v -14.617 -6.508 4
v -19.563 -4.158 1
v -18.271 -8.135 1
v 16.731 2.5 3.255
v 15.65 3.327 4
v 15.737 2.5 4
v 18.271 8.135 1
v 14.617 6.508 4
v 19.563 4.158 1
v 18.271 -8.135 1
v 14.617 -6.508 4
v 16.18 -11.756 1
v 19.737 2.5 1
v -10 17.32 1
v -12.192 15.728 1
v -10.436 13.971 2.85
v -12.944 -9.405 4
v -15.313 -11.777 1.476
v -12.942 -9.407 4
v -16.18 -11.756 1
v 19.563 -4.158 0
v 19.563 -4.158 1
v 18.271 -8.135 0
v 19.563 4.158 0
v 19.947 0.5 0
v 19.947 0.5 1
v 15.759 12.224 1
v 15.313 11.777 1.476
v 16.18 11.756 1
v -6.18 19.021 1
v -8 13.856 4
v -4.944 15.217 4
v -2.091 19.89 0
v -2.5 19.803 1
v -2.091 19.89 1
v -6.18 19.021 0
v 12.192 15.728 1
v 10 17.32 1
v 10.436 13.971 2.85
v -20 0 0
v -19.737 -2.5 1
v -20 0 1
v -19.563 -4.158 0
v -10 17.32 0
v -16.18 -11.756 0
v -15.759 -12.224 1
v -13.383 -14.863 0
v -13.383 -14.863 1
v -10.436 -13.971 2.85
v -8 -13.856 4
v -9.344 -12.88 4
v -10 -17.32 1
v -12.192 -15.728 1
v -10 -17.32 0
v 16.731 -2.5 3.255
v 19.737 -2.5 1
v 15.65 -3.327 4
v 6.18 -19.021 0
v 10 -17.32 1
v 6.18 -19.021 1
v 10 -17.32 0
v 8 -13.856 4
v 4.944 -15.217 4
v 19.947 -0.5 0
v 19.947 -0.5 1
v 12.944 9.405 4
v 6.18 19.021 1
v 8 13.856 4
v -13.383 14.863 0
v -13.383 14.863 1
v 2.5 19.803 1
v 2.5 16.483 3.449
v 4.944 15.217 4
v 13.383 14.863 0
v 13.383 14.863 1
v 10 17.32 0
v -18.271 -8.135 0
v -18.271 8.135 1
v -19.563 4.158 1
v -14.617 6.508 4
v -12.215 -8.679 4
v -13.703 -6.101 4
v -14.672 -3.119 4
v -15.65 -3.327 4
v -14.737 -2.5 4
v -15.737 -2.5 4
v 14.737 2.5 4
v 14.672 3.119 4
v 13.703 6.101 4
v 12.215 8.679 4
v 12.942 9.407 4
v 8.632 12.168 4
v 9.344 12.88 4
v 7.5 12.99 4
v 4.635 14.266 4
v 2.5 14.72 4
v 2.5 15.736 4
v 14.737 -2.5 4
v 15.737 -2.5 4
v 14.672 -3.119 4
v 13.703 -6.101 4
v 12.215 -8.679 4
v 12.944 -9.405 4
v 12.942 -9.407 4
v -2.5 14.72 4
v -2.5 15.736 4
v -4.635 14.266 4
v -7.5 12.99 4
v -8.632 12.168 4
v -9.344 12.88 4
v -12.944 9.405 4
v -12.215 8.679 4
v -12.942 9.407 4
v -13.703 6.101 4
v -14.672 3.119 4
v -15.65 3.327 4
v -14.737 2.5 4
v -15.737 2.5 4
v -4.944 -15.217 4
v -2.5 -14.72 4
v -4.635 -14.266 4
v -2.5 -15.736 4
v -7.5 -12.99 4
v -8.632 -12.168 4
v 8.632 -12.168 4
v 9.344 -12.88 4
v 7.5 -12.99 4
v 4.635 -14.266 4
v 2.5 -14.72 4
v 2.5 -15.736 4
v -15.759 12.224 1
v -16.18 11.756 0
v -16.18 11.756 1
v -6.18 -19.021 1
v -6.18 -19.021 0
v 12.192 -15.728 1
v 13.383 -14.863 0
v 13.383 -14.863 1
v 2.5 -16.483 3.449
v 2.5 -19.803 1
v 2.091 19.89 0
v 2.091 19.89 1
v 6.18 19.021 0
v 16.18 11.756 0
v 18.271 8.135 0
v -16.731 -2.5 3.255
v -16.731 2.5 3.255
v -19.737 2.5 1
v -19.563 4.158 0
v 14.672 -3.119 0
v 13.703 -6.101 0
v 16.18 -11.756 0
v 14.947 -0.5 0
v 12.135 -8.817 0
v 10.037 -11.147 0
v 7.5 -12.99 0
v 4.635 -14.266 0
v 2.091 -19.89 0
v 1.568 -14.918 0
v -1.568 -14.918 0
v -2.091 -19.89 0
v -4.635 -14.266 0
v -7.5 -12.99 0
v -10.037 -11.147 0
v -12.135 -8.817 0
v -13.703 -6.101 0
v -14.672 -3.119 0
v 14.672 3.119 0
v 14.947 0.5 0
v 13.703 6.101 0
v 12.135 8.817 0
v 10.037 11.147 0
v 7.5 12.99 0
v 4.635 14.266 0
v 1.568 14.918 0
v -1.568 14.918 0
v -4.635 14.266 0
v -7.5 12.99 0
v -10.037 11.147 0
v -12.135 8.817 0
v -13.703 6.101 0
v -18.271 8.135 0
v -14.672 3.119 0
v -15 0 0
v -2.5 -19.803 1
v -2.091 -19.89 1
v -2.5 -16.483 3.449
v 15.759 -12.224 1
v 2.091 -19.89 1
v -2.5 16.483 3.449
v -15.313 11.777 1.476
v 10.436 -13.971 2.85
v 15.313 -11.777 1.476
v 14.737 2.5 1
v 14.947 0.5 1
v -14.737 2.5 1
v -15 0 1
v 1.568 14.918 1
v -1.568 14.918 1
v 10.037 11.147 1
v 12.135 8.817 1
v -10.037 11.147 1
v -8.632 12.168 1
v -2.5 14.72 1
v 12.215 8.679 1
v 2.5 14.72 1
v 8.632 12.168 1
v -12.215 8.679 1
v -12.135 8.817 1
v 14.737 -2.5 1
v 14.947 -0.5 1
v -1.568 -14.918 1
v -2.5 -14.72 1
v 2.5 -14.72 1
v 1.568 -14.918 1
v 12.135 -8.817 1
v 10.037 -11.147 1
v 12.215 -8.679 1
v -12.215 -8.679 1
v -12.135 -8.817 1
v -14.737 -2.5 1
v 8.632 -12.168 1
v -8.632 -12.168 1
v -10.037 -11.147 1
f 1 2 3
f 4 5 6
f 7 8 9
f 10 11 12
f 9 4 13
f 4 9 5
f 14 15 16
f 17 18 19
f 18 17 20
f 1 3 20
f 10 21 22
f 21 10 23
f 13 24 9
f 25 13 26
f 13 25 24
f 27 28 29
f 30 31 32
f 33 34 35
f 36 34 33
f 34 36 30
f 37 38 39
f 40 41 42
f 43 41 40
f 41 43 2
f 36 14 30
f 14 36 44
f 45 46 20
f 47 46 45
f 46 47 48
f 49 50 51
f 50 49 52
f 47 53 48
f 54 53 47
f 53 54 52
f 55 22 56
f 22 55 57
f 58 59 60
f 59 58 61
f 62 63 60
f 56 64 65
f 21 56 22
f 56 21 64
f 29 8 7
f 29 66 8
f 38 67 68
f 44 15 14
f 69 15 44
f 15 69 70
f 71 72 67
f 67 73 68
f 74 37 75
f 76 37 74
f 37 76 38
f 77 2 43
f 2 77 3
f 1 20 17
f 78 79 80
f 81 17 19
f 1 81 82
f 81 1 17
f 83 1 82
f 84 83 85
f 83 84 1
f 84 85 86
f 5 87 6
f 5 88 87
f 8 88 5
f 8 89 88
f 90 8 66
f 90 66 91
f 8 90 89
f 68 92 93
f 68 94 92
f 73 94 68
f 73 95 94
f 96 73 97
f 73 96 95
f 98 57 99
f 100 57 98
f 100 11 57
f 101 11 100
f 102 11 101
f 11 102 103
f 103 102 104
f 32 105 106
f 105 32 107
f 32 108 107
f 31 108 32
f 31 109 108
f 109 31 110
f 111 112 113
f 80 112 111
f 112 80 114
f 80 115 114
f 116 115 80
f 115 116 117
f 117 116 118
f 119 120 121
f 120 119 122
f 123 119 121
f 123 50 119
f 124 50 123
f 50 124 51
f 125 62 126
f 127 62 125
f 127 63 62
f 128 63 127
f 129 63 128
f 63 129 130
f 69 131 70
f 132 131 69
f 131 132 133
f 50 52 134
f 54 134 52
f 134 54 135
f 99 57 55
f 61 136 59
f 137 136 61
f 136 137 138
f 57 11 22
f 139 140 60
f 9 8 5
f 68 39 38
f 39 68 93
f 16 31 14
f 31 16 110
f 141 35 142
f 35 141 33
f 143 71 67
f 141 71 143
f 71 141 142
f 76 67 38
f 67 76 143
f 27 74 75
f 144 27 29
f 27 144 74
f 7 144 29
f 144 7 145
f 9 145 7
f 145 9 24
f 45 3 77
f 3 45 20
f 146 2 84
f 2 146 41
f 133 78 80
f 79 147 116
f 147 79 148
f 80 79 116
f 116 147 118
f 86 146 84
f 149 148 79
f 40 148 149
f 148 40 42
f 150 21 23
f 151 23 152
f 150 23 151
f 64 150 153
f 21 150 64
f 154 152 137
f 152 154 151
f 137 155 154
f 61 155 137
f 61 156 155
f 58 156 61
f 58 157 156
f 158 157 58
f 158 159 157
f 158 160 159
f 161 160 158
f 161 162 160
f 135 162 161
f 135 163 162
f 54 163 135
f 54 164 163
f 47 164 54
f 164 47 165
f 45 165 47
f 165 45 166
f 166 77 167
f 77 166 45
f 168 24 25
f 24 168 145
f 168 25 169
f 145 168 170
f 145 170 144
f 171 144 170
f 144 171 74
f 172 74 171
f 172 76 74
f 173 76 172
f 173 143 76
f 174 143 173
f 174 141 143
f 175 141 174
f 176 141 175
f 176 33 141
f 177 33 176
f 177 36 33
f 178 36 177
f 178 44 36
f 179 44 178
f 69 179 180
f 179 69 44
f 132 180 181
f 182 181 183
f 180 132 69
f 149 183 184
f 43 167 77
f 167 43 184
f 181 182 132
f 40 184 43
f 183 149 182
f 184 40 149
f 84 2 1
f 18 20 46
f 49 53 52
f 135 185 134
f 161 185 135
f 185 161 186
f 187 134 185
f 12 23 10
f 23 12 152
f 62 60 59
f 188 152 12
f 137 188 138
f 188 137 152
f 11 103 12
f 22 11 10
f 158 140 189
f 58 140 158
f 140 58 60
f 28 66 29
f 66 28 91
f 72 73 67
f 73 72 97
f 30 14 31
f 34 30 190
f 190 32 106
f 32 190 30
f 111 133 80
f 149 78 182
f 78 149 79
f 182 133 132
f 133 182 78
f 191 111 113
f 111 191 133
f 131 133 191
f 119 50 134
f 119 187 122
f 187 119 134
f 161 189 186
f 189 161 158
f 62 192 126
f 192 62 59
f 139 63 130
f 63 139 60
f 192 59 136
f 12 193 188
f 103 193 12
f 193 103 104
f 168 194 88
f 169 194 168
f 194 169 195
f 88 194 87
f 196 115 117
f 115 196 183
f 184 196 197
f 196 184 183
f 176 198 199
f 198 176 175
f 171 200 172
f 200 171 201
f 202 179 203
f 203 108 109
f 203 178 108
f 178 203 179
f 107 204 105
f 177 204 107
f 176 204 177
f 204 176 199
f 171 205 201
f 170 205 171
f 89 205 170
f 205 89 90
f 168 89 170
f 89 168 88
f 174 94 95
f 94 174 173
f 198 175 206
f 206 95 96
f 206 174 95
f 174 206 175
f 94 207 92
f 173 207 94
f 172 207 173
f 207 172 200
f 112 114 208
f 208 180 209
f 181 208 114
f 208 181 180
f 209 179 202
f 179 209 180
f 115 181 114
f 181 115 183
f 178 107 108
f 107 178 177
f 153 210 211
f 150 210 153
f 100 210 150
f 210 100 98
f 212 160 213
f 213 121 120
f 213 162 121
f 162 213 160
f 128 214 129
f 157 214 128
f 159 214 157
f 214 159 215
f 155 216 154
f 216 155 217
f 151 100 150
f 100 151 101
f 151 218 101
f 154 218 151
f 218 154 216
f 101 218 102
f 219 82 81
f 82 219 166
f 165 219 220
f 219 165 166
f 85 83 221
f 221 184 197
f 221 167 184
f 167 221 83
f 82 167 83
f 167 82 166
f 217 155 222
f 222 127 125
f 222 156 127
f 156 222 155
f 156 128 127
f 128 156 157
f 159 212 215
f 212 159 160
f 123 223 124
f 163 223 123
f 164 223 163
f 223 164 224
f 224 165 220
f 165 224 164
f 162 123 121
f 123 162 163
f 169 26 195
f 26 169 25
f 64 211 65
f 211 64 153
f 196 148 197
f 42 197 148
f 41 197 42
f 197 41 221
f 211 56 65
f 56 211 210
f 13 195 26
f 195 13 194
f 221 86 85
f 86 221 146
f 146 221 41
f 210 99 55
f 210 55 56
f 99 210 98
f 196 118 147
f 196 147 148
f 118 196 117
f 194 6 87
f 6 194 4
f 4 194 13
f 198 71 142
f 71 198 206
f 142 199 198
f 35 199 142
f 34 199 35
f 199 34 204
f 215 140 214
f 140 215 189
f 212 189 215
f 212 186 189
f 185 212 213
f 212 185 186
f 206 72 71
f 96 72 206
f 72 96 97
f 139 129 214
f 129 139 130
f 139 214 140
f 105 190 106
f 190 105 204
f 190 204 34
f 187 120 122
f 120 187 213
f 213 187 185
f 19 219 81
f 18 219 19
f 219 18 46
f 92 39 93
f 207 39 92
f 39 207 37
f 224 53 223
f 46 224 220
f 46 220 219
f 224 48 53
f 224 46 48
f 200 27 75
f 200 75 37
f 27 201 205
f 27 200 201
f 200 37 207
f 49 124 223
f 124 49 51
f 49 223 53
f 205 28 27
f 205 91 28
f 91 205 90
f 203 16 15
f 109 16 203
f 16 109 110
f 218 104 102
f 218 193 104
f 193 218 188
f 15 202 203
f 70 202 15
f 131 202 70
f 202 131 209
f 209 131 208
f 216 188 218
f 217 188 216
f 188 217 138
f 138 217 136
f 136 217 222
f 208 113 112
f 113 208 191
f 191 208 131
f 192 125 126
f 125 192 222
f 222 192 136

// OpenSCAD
/* Glow Ring Flat */

// Diameter Of Object To Wrap
inner = 30;

// thickness
thickness = 1;
height = 4;

// Cutout Size
cutout = 1;

// Flex Cuts
flexcut = 5;

/* Calc */
outer = inner+10;

difference()
{
  hull()
  {
    /* Main Disc */
    cylinder(r=outer/2, h=thickness);

    /* Side Lip */
    cylinder(r=(inner+2)/2, h=height);
  }
  
  /* Main Disc */
    #translate([0  , 0  , -thickness/2])cylinder(r=inner/2, h=(height+1));
    #translate([0  , -cutout/2  , -thickness/2])cube([inner/2+10, cutout, (height+1)]);

  /* Side Lip */
    rotate(0)
    #translate([-inner/2 -thickness -4 , -flexcut/2, thickness])cube([inner+thickness+10, flexcut, height+1]);

    rotate(90)
    #translate([-inner/2 -thickness -4 , -flexcut/2, thickness])cube([inner+thickness+10, flexcut, height+1]);
  
    rotate(45)
    #translate([-inner/2 -thickness -4 , -flexcut/2, thickness])cube([inner+thickness+10, flexcut, height+1]);


    rotate(90+45)
    #translate([-inner/2 -thickness -4 , -flexcut/2, thickness])cube([inner+thickness+10, flexcut, height+1]);
  
}
